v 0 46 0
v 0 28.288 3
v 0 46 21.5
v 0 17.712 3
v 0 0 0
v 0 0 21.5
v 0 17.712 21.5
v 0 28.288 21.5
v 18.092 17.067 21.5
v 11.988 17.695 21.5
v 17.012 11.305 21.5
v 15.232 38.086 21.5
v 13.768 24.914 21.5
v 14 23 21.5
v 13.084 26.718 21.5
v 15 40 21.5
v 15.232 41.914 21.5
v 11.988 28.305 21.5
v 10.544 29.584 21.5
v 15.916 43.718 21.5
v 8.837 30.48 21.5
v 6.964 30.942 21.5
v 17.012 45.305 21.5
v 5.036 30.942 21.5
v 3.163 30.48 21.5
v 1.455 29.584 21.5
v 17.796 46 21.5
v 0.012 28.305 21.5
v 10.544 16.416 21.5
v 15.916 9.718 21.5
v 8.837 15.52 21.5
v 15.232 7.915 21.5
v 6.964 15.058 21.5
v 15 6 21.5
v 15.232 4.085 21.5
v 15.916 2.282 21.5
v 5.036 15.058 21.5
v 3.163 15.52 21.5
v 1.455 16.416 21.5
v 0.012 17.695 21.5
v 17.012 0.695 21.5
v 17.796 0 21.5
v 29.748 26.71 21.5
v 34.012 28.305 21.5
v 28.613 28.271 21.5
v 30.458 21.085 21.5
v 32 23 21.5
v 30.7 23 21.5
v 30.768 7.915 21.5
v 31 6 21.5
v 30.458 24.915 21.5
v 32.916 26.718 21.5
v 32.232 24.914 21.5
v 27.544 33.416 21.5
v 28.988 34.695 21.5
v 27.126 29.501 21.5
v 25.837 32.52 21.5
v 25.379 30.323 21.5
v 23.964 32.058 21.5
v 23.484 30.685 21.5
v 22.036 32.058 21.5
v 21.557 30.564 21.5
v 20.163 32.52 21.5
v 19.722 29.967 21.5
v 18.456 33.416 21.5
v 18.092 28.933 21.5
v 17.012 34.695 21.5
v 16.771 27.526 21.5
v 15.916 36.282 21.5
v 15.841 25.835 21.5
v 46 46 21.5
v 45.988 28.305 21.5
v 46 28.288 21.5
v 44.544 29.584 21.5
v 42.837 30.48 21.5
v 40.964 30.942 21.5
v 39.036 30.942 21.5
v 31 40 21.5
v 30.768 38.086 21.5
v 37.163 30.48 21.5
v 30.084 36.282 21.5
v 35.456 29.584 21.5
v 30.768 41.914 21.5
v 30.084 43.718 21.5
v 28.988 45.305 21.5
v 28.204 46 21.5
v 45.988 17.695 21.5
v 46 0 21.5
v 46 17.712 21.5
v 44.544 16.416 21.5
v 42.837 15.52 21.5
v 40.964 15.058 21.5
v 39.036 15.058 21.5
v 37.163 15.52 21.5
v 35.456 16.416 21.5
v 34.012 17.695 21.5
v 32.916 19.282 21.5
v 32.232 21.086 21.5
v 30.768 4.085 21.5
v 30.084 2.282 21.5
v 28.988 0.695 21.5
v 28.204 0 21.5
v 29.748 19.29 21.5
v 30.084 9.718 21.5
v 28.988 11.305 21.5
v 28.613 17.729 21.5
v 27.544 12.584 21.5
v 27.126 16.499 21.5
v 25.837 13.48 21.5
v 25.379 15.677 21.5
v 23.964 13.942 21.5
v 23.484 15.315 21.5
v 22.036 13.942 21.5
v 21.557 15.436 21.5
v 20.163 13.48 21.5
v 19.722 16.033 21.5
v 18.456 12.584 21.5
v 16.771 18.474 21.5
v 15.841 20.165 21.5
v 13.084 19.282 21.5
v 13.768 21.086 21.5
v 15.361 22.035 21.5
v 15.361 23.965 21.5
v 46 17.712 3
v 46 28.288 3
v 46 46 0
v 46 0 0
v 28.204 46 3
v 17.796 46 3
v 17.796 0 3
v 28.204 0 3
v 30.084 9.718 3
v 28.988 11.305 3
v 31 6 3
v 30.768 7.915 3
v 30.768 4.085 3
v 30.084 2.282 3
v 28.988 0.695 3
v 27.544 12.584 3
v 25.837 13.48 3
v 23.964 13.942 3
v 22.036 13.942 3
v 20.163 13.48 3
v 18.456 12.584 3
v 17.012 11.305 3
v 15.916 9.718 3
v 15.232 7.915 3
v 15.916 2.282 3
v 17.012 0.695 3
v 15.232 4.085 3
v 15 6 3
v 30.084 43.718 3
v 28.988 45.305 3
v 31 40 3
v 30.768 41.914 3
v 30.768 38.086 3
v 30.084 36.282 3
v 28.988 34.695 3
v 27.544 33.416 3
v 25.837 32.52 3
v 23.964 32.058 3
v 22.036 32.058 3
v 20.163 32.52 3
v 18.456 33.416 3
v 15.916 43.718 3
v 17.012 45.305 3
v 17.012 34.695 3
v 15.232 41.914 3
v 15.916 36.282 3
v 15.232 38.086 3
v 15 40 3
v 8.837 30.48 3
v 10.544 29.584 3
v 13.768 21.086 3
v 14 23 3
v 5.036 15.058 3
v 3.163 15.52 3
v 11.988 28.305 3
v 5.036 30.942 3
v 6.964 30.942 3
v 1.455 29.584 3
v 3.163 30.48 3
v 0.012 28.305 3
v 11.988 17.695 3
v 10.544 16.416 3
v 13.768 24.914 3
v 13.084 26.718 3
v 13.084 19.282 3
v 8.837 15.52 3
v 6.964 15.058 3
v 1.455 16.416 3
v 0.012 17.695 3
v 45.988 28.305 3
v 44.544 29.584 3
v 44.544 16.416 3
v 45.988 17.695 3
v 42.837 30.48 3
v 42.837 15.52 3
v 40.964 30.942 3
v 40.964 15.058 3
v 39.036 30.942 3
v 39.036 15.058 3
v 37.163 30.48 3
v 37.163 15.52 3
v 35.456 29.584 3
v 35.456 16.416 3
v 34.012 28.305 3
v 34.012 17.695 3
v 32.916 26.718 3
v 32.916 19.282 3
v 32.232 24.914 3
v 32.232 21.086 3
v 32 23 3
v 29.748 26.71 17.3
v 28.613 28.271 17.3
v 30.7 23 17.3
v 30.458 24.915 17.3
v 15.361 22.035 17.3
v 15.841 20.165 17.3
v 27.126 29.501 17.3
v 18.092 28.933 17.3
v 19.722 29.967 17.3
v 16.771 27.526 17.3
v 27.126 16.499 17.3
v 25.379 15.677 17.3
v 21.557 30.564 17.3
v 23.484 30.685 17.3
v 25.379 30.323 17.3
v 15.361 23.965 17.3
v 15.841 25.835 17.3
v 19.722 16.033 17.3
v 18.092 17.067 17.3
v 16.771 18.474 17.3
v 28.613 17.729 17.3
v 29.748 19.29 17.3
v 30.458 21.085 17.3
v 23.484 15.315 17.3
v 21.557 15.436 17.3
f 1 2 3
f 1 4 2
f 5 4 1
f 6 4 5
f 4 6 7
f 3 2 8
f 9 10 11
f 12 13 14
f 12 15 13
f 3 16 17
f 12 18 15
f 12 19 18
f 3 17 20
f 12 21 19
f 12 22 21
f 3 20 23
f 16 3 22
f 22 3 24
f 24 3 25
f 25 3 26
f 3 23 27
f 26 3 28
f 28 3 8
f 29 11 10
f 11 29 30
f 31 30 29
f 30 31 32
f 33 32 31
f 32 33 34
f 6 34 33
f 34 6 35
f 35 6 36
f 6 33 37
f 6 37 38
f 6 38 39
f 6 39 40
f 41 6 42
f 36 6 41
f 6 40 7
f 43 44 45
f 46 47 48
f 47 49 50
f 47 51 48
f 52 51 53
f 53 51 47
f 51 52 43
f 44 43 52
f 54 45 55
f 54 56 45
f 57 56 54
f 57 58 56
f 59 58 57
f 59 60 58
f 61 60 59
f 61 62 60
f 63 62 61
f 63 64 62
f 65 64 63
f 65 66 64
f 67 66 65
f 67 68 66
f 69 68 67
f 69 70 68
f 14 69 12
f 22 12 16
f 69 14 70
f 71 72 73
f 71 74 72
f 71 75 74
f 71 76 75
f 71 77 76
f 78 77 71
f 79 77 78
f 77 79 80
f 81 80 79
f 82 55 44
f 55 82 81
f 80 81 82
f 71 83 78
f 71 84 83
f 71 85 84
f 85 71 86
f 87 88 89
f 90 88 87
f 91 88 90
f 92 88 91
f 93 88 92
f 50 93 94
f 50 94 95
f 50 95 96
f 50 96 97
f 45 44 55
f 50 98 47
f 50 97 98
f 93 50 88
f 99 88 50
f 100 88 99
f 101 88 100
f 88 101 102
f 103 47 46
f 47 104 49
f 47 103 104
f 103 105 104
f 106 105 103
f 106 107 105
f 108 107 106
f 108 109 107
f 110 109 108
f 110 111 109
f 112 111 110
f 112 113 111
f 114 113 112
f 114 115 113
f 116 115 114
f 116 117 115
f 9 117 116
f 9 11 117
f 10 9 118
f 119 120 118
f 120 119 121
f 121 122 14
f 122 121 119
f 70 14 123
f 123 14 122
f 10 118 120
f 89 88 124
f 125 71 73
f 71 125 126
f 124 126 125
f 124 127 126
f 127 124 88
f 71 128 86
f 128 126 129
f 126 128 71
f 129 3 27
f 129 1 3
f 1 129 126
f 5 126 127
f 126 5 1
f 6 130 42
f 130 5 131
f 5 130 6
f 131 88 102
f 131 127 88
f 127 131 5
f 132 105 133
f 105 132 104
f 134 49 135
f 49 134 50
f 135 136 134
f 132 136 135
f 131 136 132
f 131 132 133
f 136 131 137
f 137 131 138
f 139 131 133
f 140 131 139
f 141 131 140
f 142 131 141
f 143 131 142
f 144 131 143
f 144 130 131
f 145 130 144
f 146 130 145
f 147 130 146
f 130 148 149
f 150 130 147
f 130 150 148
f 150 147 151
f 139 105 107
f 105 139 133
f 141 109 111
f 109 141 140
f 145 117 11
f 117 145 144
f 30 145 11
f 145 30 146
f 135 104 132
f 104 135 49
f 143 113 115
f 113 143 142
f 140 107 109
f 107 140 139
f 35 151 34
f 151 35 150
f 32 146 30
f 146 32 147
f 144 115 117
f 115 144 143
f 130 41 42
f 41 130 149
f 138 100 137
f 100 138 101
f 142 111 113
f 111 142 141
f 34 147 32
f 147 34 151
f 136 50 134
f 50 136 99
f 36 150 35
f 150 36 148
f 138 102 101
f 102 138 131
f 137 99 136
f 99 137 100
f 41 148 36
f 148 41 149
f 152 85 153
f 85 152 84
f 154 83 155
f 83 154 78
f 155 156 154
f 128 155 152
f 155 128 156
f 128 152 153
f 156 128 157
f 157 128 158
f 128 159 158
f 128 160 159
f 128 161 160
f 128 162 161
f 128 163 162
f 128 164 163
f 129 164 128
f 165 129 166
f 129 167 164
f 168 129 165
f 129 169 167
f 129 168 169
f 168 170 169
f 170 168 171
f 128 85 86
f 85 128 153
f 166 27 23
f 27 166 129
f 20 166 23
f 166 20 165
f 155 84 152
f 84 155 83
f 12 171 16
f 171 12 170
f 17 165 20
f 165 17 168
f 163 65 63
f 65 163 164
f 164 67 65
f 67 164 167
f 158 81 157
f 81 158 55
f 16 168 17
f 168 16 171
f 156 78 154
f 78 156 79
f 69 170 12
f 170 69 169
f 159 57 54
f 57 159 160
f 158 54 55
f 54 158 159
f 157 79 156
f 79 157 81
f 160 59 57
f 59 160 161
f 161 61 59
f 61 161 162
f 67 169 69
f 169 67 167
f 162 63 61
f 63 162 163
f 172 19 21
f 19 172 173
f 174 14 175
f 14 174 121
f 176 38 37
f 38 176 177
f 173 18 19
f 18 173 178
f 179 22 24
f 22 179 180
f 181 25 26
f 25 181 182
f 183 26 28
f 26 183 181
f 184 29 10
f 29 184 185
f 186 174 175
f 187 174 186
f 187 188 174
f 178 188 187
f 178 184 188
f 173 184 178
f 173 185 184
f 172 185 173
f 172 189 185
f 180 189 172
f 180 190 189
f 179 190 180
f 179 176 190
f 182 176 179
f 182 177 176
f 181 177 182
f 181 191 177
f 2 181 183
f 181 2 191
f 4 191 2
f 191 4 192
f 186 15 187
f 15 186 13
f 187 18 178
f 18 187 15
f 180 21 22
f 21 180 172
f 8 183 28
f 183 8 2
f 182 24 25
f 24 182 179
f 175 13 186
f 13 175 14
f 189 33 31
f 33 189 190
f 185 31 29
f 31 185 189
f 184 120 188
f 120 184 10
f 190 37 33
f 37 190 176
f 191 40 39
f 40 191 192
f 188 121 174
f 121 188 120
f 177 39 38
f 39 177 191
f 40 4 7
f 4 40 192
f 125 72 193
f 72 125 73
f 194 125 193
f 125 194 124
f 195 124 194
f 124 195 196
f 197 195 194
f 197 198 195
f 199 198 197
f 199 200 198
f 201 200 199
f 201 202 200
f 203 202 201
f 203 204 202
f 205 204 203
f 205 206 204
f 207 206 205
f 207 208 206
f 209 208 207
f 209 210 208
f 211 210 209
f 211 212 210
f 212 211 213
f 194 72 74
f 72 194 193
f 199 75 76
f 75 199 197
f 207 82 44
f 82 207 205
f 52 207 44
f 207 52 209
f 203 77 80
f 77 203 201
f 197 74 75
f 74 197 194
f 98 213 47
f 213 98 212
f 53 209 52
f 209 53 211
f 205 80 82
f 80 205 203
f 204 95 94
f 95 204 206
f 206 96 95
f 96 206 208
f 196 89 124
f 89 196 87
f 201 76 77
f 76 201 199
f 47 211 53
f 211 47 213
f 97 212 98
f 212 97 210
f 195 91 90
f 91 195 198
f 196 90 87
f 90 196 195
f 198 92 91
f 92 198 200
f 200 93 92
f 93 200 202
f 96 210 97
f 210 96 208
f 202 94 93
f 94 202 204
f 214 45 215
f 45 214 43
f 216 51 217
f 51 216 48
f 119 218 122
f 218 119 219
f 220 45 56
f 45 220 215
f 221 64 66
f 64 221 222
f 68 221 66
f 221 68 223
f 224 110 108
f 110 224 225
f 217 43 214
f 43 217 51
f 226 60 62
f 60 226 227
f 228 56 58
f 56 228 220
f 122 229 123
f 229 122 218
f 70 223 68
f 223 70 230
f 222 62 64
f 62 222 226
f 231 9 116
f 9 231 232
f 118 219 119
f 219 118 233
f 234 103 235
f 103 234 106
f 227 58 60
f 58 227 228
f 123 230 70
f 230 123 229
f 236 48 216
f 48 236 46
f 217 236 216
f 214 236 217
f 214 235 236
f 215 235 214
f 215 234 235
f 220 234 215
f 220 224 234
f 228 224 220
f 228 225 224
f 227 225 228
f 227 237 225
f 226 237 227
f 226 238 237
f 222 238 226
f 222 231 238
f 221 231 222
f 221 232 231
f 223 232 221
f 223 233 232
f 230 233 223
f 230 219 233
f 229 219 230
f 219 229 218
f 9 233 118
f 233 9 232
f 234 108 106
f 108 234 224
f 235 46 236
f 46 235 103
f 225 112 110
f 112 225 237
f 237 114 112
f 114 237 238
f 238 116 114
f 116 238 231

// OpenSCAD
length = 46;
width = 46;
height = 21.5;

floorThickness = 3;

//Based on magnet size:
magnetBaseOuterDiameter = 20;
magnetBaseInnerDiameter = 15.4;
magnetHeight = 4.2;

smallCircleDiameter = 16;
smallCircleOffset = 2;

standardTokenHeight = 18.5;
waterTokenHeight = 18.5;


spaceBetweenCircles = 3;

difference(){
    cube([length, width, height]);

    

    translate([length /2, smallCircleDiameter/2 - smallCircleOffset, height - standardTokenHeight])
        cylinder(standardTokenHeight, d=smallCircleDiameter);
    
    

    translate([length /2, width - (smallCircleDiameter/2 - smallCircleOffset), height - standardTokenHeight])
        cylinder(standardTokenHeight, d=smallCircleDiameter);
    
   
    
    


    translate([smallCircleDiameter/2 - smallCircleOffset, width/2, height - waterTokenHeight])
        cylinder(waterTokenHeight, d=smallCircleDiameter);

    translate([length - (smallCircleDiameter/2 - smallCircleOffset), width/2, height - waterTokenHeight])
        cylinder(waterTokenHeight, d=smallCircleDiameter);
        
    translate([length/2, width/2, height - magnetHeight])
        cylinder(magnetHeight, d=magnetBaseInnerDiameter);
        

}
